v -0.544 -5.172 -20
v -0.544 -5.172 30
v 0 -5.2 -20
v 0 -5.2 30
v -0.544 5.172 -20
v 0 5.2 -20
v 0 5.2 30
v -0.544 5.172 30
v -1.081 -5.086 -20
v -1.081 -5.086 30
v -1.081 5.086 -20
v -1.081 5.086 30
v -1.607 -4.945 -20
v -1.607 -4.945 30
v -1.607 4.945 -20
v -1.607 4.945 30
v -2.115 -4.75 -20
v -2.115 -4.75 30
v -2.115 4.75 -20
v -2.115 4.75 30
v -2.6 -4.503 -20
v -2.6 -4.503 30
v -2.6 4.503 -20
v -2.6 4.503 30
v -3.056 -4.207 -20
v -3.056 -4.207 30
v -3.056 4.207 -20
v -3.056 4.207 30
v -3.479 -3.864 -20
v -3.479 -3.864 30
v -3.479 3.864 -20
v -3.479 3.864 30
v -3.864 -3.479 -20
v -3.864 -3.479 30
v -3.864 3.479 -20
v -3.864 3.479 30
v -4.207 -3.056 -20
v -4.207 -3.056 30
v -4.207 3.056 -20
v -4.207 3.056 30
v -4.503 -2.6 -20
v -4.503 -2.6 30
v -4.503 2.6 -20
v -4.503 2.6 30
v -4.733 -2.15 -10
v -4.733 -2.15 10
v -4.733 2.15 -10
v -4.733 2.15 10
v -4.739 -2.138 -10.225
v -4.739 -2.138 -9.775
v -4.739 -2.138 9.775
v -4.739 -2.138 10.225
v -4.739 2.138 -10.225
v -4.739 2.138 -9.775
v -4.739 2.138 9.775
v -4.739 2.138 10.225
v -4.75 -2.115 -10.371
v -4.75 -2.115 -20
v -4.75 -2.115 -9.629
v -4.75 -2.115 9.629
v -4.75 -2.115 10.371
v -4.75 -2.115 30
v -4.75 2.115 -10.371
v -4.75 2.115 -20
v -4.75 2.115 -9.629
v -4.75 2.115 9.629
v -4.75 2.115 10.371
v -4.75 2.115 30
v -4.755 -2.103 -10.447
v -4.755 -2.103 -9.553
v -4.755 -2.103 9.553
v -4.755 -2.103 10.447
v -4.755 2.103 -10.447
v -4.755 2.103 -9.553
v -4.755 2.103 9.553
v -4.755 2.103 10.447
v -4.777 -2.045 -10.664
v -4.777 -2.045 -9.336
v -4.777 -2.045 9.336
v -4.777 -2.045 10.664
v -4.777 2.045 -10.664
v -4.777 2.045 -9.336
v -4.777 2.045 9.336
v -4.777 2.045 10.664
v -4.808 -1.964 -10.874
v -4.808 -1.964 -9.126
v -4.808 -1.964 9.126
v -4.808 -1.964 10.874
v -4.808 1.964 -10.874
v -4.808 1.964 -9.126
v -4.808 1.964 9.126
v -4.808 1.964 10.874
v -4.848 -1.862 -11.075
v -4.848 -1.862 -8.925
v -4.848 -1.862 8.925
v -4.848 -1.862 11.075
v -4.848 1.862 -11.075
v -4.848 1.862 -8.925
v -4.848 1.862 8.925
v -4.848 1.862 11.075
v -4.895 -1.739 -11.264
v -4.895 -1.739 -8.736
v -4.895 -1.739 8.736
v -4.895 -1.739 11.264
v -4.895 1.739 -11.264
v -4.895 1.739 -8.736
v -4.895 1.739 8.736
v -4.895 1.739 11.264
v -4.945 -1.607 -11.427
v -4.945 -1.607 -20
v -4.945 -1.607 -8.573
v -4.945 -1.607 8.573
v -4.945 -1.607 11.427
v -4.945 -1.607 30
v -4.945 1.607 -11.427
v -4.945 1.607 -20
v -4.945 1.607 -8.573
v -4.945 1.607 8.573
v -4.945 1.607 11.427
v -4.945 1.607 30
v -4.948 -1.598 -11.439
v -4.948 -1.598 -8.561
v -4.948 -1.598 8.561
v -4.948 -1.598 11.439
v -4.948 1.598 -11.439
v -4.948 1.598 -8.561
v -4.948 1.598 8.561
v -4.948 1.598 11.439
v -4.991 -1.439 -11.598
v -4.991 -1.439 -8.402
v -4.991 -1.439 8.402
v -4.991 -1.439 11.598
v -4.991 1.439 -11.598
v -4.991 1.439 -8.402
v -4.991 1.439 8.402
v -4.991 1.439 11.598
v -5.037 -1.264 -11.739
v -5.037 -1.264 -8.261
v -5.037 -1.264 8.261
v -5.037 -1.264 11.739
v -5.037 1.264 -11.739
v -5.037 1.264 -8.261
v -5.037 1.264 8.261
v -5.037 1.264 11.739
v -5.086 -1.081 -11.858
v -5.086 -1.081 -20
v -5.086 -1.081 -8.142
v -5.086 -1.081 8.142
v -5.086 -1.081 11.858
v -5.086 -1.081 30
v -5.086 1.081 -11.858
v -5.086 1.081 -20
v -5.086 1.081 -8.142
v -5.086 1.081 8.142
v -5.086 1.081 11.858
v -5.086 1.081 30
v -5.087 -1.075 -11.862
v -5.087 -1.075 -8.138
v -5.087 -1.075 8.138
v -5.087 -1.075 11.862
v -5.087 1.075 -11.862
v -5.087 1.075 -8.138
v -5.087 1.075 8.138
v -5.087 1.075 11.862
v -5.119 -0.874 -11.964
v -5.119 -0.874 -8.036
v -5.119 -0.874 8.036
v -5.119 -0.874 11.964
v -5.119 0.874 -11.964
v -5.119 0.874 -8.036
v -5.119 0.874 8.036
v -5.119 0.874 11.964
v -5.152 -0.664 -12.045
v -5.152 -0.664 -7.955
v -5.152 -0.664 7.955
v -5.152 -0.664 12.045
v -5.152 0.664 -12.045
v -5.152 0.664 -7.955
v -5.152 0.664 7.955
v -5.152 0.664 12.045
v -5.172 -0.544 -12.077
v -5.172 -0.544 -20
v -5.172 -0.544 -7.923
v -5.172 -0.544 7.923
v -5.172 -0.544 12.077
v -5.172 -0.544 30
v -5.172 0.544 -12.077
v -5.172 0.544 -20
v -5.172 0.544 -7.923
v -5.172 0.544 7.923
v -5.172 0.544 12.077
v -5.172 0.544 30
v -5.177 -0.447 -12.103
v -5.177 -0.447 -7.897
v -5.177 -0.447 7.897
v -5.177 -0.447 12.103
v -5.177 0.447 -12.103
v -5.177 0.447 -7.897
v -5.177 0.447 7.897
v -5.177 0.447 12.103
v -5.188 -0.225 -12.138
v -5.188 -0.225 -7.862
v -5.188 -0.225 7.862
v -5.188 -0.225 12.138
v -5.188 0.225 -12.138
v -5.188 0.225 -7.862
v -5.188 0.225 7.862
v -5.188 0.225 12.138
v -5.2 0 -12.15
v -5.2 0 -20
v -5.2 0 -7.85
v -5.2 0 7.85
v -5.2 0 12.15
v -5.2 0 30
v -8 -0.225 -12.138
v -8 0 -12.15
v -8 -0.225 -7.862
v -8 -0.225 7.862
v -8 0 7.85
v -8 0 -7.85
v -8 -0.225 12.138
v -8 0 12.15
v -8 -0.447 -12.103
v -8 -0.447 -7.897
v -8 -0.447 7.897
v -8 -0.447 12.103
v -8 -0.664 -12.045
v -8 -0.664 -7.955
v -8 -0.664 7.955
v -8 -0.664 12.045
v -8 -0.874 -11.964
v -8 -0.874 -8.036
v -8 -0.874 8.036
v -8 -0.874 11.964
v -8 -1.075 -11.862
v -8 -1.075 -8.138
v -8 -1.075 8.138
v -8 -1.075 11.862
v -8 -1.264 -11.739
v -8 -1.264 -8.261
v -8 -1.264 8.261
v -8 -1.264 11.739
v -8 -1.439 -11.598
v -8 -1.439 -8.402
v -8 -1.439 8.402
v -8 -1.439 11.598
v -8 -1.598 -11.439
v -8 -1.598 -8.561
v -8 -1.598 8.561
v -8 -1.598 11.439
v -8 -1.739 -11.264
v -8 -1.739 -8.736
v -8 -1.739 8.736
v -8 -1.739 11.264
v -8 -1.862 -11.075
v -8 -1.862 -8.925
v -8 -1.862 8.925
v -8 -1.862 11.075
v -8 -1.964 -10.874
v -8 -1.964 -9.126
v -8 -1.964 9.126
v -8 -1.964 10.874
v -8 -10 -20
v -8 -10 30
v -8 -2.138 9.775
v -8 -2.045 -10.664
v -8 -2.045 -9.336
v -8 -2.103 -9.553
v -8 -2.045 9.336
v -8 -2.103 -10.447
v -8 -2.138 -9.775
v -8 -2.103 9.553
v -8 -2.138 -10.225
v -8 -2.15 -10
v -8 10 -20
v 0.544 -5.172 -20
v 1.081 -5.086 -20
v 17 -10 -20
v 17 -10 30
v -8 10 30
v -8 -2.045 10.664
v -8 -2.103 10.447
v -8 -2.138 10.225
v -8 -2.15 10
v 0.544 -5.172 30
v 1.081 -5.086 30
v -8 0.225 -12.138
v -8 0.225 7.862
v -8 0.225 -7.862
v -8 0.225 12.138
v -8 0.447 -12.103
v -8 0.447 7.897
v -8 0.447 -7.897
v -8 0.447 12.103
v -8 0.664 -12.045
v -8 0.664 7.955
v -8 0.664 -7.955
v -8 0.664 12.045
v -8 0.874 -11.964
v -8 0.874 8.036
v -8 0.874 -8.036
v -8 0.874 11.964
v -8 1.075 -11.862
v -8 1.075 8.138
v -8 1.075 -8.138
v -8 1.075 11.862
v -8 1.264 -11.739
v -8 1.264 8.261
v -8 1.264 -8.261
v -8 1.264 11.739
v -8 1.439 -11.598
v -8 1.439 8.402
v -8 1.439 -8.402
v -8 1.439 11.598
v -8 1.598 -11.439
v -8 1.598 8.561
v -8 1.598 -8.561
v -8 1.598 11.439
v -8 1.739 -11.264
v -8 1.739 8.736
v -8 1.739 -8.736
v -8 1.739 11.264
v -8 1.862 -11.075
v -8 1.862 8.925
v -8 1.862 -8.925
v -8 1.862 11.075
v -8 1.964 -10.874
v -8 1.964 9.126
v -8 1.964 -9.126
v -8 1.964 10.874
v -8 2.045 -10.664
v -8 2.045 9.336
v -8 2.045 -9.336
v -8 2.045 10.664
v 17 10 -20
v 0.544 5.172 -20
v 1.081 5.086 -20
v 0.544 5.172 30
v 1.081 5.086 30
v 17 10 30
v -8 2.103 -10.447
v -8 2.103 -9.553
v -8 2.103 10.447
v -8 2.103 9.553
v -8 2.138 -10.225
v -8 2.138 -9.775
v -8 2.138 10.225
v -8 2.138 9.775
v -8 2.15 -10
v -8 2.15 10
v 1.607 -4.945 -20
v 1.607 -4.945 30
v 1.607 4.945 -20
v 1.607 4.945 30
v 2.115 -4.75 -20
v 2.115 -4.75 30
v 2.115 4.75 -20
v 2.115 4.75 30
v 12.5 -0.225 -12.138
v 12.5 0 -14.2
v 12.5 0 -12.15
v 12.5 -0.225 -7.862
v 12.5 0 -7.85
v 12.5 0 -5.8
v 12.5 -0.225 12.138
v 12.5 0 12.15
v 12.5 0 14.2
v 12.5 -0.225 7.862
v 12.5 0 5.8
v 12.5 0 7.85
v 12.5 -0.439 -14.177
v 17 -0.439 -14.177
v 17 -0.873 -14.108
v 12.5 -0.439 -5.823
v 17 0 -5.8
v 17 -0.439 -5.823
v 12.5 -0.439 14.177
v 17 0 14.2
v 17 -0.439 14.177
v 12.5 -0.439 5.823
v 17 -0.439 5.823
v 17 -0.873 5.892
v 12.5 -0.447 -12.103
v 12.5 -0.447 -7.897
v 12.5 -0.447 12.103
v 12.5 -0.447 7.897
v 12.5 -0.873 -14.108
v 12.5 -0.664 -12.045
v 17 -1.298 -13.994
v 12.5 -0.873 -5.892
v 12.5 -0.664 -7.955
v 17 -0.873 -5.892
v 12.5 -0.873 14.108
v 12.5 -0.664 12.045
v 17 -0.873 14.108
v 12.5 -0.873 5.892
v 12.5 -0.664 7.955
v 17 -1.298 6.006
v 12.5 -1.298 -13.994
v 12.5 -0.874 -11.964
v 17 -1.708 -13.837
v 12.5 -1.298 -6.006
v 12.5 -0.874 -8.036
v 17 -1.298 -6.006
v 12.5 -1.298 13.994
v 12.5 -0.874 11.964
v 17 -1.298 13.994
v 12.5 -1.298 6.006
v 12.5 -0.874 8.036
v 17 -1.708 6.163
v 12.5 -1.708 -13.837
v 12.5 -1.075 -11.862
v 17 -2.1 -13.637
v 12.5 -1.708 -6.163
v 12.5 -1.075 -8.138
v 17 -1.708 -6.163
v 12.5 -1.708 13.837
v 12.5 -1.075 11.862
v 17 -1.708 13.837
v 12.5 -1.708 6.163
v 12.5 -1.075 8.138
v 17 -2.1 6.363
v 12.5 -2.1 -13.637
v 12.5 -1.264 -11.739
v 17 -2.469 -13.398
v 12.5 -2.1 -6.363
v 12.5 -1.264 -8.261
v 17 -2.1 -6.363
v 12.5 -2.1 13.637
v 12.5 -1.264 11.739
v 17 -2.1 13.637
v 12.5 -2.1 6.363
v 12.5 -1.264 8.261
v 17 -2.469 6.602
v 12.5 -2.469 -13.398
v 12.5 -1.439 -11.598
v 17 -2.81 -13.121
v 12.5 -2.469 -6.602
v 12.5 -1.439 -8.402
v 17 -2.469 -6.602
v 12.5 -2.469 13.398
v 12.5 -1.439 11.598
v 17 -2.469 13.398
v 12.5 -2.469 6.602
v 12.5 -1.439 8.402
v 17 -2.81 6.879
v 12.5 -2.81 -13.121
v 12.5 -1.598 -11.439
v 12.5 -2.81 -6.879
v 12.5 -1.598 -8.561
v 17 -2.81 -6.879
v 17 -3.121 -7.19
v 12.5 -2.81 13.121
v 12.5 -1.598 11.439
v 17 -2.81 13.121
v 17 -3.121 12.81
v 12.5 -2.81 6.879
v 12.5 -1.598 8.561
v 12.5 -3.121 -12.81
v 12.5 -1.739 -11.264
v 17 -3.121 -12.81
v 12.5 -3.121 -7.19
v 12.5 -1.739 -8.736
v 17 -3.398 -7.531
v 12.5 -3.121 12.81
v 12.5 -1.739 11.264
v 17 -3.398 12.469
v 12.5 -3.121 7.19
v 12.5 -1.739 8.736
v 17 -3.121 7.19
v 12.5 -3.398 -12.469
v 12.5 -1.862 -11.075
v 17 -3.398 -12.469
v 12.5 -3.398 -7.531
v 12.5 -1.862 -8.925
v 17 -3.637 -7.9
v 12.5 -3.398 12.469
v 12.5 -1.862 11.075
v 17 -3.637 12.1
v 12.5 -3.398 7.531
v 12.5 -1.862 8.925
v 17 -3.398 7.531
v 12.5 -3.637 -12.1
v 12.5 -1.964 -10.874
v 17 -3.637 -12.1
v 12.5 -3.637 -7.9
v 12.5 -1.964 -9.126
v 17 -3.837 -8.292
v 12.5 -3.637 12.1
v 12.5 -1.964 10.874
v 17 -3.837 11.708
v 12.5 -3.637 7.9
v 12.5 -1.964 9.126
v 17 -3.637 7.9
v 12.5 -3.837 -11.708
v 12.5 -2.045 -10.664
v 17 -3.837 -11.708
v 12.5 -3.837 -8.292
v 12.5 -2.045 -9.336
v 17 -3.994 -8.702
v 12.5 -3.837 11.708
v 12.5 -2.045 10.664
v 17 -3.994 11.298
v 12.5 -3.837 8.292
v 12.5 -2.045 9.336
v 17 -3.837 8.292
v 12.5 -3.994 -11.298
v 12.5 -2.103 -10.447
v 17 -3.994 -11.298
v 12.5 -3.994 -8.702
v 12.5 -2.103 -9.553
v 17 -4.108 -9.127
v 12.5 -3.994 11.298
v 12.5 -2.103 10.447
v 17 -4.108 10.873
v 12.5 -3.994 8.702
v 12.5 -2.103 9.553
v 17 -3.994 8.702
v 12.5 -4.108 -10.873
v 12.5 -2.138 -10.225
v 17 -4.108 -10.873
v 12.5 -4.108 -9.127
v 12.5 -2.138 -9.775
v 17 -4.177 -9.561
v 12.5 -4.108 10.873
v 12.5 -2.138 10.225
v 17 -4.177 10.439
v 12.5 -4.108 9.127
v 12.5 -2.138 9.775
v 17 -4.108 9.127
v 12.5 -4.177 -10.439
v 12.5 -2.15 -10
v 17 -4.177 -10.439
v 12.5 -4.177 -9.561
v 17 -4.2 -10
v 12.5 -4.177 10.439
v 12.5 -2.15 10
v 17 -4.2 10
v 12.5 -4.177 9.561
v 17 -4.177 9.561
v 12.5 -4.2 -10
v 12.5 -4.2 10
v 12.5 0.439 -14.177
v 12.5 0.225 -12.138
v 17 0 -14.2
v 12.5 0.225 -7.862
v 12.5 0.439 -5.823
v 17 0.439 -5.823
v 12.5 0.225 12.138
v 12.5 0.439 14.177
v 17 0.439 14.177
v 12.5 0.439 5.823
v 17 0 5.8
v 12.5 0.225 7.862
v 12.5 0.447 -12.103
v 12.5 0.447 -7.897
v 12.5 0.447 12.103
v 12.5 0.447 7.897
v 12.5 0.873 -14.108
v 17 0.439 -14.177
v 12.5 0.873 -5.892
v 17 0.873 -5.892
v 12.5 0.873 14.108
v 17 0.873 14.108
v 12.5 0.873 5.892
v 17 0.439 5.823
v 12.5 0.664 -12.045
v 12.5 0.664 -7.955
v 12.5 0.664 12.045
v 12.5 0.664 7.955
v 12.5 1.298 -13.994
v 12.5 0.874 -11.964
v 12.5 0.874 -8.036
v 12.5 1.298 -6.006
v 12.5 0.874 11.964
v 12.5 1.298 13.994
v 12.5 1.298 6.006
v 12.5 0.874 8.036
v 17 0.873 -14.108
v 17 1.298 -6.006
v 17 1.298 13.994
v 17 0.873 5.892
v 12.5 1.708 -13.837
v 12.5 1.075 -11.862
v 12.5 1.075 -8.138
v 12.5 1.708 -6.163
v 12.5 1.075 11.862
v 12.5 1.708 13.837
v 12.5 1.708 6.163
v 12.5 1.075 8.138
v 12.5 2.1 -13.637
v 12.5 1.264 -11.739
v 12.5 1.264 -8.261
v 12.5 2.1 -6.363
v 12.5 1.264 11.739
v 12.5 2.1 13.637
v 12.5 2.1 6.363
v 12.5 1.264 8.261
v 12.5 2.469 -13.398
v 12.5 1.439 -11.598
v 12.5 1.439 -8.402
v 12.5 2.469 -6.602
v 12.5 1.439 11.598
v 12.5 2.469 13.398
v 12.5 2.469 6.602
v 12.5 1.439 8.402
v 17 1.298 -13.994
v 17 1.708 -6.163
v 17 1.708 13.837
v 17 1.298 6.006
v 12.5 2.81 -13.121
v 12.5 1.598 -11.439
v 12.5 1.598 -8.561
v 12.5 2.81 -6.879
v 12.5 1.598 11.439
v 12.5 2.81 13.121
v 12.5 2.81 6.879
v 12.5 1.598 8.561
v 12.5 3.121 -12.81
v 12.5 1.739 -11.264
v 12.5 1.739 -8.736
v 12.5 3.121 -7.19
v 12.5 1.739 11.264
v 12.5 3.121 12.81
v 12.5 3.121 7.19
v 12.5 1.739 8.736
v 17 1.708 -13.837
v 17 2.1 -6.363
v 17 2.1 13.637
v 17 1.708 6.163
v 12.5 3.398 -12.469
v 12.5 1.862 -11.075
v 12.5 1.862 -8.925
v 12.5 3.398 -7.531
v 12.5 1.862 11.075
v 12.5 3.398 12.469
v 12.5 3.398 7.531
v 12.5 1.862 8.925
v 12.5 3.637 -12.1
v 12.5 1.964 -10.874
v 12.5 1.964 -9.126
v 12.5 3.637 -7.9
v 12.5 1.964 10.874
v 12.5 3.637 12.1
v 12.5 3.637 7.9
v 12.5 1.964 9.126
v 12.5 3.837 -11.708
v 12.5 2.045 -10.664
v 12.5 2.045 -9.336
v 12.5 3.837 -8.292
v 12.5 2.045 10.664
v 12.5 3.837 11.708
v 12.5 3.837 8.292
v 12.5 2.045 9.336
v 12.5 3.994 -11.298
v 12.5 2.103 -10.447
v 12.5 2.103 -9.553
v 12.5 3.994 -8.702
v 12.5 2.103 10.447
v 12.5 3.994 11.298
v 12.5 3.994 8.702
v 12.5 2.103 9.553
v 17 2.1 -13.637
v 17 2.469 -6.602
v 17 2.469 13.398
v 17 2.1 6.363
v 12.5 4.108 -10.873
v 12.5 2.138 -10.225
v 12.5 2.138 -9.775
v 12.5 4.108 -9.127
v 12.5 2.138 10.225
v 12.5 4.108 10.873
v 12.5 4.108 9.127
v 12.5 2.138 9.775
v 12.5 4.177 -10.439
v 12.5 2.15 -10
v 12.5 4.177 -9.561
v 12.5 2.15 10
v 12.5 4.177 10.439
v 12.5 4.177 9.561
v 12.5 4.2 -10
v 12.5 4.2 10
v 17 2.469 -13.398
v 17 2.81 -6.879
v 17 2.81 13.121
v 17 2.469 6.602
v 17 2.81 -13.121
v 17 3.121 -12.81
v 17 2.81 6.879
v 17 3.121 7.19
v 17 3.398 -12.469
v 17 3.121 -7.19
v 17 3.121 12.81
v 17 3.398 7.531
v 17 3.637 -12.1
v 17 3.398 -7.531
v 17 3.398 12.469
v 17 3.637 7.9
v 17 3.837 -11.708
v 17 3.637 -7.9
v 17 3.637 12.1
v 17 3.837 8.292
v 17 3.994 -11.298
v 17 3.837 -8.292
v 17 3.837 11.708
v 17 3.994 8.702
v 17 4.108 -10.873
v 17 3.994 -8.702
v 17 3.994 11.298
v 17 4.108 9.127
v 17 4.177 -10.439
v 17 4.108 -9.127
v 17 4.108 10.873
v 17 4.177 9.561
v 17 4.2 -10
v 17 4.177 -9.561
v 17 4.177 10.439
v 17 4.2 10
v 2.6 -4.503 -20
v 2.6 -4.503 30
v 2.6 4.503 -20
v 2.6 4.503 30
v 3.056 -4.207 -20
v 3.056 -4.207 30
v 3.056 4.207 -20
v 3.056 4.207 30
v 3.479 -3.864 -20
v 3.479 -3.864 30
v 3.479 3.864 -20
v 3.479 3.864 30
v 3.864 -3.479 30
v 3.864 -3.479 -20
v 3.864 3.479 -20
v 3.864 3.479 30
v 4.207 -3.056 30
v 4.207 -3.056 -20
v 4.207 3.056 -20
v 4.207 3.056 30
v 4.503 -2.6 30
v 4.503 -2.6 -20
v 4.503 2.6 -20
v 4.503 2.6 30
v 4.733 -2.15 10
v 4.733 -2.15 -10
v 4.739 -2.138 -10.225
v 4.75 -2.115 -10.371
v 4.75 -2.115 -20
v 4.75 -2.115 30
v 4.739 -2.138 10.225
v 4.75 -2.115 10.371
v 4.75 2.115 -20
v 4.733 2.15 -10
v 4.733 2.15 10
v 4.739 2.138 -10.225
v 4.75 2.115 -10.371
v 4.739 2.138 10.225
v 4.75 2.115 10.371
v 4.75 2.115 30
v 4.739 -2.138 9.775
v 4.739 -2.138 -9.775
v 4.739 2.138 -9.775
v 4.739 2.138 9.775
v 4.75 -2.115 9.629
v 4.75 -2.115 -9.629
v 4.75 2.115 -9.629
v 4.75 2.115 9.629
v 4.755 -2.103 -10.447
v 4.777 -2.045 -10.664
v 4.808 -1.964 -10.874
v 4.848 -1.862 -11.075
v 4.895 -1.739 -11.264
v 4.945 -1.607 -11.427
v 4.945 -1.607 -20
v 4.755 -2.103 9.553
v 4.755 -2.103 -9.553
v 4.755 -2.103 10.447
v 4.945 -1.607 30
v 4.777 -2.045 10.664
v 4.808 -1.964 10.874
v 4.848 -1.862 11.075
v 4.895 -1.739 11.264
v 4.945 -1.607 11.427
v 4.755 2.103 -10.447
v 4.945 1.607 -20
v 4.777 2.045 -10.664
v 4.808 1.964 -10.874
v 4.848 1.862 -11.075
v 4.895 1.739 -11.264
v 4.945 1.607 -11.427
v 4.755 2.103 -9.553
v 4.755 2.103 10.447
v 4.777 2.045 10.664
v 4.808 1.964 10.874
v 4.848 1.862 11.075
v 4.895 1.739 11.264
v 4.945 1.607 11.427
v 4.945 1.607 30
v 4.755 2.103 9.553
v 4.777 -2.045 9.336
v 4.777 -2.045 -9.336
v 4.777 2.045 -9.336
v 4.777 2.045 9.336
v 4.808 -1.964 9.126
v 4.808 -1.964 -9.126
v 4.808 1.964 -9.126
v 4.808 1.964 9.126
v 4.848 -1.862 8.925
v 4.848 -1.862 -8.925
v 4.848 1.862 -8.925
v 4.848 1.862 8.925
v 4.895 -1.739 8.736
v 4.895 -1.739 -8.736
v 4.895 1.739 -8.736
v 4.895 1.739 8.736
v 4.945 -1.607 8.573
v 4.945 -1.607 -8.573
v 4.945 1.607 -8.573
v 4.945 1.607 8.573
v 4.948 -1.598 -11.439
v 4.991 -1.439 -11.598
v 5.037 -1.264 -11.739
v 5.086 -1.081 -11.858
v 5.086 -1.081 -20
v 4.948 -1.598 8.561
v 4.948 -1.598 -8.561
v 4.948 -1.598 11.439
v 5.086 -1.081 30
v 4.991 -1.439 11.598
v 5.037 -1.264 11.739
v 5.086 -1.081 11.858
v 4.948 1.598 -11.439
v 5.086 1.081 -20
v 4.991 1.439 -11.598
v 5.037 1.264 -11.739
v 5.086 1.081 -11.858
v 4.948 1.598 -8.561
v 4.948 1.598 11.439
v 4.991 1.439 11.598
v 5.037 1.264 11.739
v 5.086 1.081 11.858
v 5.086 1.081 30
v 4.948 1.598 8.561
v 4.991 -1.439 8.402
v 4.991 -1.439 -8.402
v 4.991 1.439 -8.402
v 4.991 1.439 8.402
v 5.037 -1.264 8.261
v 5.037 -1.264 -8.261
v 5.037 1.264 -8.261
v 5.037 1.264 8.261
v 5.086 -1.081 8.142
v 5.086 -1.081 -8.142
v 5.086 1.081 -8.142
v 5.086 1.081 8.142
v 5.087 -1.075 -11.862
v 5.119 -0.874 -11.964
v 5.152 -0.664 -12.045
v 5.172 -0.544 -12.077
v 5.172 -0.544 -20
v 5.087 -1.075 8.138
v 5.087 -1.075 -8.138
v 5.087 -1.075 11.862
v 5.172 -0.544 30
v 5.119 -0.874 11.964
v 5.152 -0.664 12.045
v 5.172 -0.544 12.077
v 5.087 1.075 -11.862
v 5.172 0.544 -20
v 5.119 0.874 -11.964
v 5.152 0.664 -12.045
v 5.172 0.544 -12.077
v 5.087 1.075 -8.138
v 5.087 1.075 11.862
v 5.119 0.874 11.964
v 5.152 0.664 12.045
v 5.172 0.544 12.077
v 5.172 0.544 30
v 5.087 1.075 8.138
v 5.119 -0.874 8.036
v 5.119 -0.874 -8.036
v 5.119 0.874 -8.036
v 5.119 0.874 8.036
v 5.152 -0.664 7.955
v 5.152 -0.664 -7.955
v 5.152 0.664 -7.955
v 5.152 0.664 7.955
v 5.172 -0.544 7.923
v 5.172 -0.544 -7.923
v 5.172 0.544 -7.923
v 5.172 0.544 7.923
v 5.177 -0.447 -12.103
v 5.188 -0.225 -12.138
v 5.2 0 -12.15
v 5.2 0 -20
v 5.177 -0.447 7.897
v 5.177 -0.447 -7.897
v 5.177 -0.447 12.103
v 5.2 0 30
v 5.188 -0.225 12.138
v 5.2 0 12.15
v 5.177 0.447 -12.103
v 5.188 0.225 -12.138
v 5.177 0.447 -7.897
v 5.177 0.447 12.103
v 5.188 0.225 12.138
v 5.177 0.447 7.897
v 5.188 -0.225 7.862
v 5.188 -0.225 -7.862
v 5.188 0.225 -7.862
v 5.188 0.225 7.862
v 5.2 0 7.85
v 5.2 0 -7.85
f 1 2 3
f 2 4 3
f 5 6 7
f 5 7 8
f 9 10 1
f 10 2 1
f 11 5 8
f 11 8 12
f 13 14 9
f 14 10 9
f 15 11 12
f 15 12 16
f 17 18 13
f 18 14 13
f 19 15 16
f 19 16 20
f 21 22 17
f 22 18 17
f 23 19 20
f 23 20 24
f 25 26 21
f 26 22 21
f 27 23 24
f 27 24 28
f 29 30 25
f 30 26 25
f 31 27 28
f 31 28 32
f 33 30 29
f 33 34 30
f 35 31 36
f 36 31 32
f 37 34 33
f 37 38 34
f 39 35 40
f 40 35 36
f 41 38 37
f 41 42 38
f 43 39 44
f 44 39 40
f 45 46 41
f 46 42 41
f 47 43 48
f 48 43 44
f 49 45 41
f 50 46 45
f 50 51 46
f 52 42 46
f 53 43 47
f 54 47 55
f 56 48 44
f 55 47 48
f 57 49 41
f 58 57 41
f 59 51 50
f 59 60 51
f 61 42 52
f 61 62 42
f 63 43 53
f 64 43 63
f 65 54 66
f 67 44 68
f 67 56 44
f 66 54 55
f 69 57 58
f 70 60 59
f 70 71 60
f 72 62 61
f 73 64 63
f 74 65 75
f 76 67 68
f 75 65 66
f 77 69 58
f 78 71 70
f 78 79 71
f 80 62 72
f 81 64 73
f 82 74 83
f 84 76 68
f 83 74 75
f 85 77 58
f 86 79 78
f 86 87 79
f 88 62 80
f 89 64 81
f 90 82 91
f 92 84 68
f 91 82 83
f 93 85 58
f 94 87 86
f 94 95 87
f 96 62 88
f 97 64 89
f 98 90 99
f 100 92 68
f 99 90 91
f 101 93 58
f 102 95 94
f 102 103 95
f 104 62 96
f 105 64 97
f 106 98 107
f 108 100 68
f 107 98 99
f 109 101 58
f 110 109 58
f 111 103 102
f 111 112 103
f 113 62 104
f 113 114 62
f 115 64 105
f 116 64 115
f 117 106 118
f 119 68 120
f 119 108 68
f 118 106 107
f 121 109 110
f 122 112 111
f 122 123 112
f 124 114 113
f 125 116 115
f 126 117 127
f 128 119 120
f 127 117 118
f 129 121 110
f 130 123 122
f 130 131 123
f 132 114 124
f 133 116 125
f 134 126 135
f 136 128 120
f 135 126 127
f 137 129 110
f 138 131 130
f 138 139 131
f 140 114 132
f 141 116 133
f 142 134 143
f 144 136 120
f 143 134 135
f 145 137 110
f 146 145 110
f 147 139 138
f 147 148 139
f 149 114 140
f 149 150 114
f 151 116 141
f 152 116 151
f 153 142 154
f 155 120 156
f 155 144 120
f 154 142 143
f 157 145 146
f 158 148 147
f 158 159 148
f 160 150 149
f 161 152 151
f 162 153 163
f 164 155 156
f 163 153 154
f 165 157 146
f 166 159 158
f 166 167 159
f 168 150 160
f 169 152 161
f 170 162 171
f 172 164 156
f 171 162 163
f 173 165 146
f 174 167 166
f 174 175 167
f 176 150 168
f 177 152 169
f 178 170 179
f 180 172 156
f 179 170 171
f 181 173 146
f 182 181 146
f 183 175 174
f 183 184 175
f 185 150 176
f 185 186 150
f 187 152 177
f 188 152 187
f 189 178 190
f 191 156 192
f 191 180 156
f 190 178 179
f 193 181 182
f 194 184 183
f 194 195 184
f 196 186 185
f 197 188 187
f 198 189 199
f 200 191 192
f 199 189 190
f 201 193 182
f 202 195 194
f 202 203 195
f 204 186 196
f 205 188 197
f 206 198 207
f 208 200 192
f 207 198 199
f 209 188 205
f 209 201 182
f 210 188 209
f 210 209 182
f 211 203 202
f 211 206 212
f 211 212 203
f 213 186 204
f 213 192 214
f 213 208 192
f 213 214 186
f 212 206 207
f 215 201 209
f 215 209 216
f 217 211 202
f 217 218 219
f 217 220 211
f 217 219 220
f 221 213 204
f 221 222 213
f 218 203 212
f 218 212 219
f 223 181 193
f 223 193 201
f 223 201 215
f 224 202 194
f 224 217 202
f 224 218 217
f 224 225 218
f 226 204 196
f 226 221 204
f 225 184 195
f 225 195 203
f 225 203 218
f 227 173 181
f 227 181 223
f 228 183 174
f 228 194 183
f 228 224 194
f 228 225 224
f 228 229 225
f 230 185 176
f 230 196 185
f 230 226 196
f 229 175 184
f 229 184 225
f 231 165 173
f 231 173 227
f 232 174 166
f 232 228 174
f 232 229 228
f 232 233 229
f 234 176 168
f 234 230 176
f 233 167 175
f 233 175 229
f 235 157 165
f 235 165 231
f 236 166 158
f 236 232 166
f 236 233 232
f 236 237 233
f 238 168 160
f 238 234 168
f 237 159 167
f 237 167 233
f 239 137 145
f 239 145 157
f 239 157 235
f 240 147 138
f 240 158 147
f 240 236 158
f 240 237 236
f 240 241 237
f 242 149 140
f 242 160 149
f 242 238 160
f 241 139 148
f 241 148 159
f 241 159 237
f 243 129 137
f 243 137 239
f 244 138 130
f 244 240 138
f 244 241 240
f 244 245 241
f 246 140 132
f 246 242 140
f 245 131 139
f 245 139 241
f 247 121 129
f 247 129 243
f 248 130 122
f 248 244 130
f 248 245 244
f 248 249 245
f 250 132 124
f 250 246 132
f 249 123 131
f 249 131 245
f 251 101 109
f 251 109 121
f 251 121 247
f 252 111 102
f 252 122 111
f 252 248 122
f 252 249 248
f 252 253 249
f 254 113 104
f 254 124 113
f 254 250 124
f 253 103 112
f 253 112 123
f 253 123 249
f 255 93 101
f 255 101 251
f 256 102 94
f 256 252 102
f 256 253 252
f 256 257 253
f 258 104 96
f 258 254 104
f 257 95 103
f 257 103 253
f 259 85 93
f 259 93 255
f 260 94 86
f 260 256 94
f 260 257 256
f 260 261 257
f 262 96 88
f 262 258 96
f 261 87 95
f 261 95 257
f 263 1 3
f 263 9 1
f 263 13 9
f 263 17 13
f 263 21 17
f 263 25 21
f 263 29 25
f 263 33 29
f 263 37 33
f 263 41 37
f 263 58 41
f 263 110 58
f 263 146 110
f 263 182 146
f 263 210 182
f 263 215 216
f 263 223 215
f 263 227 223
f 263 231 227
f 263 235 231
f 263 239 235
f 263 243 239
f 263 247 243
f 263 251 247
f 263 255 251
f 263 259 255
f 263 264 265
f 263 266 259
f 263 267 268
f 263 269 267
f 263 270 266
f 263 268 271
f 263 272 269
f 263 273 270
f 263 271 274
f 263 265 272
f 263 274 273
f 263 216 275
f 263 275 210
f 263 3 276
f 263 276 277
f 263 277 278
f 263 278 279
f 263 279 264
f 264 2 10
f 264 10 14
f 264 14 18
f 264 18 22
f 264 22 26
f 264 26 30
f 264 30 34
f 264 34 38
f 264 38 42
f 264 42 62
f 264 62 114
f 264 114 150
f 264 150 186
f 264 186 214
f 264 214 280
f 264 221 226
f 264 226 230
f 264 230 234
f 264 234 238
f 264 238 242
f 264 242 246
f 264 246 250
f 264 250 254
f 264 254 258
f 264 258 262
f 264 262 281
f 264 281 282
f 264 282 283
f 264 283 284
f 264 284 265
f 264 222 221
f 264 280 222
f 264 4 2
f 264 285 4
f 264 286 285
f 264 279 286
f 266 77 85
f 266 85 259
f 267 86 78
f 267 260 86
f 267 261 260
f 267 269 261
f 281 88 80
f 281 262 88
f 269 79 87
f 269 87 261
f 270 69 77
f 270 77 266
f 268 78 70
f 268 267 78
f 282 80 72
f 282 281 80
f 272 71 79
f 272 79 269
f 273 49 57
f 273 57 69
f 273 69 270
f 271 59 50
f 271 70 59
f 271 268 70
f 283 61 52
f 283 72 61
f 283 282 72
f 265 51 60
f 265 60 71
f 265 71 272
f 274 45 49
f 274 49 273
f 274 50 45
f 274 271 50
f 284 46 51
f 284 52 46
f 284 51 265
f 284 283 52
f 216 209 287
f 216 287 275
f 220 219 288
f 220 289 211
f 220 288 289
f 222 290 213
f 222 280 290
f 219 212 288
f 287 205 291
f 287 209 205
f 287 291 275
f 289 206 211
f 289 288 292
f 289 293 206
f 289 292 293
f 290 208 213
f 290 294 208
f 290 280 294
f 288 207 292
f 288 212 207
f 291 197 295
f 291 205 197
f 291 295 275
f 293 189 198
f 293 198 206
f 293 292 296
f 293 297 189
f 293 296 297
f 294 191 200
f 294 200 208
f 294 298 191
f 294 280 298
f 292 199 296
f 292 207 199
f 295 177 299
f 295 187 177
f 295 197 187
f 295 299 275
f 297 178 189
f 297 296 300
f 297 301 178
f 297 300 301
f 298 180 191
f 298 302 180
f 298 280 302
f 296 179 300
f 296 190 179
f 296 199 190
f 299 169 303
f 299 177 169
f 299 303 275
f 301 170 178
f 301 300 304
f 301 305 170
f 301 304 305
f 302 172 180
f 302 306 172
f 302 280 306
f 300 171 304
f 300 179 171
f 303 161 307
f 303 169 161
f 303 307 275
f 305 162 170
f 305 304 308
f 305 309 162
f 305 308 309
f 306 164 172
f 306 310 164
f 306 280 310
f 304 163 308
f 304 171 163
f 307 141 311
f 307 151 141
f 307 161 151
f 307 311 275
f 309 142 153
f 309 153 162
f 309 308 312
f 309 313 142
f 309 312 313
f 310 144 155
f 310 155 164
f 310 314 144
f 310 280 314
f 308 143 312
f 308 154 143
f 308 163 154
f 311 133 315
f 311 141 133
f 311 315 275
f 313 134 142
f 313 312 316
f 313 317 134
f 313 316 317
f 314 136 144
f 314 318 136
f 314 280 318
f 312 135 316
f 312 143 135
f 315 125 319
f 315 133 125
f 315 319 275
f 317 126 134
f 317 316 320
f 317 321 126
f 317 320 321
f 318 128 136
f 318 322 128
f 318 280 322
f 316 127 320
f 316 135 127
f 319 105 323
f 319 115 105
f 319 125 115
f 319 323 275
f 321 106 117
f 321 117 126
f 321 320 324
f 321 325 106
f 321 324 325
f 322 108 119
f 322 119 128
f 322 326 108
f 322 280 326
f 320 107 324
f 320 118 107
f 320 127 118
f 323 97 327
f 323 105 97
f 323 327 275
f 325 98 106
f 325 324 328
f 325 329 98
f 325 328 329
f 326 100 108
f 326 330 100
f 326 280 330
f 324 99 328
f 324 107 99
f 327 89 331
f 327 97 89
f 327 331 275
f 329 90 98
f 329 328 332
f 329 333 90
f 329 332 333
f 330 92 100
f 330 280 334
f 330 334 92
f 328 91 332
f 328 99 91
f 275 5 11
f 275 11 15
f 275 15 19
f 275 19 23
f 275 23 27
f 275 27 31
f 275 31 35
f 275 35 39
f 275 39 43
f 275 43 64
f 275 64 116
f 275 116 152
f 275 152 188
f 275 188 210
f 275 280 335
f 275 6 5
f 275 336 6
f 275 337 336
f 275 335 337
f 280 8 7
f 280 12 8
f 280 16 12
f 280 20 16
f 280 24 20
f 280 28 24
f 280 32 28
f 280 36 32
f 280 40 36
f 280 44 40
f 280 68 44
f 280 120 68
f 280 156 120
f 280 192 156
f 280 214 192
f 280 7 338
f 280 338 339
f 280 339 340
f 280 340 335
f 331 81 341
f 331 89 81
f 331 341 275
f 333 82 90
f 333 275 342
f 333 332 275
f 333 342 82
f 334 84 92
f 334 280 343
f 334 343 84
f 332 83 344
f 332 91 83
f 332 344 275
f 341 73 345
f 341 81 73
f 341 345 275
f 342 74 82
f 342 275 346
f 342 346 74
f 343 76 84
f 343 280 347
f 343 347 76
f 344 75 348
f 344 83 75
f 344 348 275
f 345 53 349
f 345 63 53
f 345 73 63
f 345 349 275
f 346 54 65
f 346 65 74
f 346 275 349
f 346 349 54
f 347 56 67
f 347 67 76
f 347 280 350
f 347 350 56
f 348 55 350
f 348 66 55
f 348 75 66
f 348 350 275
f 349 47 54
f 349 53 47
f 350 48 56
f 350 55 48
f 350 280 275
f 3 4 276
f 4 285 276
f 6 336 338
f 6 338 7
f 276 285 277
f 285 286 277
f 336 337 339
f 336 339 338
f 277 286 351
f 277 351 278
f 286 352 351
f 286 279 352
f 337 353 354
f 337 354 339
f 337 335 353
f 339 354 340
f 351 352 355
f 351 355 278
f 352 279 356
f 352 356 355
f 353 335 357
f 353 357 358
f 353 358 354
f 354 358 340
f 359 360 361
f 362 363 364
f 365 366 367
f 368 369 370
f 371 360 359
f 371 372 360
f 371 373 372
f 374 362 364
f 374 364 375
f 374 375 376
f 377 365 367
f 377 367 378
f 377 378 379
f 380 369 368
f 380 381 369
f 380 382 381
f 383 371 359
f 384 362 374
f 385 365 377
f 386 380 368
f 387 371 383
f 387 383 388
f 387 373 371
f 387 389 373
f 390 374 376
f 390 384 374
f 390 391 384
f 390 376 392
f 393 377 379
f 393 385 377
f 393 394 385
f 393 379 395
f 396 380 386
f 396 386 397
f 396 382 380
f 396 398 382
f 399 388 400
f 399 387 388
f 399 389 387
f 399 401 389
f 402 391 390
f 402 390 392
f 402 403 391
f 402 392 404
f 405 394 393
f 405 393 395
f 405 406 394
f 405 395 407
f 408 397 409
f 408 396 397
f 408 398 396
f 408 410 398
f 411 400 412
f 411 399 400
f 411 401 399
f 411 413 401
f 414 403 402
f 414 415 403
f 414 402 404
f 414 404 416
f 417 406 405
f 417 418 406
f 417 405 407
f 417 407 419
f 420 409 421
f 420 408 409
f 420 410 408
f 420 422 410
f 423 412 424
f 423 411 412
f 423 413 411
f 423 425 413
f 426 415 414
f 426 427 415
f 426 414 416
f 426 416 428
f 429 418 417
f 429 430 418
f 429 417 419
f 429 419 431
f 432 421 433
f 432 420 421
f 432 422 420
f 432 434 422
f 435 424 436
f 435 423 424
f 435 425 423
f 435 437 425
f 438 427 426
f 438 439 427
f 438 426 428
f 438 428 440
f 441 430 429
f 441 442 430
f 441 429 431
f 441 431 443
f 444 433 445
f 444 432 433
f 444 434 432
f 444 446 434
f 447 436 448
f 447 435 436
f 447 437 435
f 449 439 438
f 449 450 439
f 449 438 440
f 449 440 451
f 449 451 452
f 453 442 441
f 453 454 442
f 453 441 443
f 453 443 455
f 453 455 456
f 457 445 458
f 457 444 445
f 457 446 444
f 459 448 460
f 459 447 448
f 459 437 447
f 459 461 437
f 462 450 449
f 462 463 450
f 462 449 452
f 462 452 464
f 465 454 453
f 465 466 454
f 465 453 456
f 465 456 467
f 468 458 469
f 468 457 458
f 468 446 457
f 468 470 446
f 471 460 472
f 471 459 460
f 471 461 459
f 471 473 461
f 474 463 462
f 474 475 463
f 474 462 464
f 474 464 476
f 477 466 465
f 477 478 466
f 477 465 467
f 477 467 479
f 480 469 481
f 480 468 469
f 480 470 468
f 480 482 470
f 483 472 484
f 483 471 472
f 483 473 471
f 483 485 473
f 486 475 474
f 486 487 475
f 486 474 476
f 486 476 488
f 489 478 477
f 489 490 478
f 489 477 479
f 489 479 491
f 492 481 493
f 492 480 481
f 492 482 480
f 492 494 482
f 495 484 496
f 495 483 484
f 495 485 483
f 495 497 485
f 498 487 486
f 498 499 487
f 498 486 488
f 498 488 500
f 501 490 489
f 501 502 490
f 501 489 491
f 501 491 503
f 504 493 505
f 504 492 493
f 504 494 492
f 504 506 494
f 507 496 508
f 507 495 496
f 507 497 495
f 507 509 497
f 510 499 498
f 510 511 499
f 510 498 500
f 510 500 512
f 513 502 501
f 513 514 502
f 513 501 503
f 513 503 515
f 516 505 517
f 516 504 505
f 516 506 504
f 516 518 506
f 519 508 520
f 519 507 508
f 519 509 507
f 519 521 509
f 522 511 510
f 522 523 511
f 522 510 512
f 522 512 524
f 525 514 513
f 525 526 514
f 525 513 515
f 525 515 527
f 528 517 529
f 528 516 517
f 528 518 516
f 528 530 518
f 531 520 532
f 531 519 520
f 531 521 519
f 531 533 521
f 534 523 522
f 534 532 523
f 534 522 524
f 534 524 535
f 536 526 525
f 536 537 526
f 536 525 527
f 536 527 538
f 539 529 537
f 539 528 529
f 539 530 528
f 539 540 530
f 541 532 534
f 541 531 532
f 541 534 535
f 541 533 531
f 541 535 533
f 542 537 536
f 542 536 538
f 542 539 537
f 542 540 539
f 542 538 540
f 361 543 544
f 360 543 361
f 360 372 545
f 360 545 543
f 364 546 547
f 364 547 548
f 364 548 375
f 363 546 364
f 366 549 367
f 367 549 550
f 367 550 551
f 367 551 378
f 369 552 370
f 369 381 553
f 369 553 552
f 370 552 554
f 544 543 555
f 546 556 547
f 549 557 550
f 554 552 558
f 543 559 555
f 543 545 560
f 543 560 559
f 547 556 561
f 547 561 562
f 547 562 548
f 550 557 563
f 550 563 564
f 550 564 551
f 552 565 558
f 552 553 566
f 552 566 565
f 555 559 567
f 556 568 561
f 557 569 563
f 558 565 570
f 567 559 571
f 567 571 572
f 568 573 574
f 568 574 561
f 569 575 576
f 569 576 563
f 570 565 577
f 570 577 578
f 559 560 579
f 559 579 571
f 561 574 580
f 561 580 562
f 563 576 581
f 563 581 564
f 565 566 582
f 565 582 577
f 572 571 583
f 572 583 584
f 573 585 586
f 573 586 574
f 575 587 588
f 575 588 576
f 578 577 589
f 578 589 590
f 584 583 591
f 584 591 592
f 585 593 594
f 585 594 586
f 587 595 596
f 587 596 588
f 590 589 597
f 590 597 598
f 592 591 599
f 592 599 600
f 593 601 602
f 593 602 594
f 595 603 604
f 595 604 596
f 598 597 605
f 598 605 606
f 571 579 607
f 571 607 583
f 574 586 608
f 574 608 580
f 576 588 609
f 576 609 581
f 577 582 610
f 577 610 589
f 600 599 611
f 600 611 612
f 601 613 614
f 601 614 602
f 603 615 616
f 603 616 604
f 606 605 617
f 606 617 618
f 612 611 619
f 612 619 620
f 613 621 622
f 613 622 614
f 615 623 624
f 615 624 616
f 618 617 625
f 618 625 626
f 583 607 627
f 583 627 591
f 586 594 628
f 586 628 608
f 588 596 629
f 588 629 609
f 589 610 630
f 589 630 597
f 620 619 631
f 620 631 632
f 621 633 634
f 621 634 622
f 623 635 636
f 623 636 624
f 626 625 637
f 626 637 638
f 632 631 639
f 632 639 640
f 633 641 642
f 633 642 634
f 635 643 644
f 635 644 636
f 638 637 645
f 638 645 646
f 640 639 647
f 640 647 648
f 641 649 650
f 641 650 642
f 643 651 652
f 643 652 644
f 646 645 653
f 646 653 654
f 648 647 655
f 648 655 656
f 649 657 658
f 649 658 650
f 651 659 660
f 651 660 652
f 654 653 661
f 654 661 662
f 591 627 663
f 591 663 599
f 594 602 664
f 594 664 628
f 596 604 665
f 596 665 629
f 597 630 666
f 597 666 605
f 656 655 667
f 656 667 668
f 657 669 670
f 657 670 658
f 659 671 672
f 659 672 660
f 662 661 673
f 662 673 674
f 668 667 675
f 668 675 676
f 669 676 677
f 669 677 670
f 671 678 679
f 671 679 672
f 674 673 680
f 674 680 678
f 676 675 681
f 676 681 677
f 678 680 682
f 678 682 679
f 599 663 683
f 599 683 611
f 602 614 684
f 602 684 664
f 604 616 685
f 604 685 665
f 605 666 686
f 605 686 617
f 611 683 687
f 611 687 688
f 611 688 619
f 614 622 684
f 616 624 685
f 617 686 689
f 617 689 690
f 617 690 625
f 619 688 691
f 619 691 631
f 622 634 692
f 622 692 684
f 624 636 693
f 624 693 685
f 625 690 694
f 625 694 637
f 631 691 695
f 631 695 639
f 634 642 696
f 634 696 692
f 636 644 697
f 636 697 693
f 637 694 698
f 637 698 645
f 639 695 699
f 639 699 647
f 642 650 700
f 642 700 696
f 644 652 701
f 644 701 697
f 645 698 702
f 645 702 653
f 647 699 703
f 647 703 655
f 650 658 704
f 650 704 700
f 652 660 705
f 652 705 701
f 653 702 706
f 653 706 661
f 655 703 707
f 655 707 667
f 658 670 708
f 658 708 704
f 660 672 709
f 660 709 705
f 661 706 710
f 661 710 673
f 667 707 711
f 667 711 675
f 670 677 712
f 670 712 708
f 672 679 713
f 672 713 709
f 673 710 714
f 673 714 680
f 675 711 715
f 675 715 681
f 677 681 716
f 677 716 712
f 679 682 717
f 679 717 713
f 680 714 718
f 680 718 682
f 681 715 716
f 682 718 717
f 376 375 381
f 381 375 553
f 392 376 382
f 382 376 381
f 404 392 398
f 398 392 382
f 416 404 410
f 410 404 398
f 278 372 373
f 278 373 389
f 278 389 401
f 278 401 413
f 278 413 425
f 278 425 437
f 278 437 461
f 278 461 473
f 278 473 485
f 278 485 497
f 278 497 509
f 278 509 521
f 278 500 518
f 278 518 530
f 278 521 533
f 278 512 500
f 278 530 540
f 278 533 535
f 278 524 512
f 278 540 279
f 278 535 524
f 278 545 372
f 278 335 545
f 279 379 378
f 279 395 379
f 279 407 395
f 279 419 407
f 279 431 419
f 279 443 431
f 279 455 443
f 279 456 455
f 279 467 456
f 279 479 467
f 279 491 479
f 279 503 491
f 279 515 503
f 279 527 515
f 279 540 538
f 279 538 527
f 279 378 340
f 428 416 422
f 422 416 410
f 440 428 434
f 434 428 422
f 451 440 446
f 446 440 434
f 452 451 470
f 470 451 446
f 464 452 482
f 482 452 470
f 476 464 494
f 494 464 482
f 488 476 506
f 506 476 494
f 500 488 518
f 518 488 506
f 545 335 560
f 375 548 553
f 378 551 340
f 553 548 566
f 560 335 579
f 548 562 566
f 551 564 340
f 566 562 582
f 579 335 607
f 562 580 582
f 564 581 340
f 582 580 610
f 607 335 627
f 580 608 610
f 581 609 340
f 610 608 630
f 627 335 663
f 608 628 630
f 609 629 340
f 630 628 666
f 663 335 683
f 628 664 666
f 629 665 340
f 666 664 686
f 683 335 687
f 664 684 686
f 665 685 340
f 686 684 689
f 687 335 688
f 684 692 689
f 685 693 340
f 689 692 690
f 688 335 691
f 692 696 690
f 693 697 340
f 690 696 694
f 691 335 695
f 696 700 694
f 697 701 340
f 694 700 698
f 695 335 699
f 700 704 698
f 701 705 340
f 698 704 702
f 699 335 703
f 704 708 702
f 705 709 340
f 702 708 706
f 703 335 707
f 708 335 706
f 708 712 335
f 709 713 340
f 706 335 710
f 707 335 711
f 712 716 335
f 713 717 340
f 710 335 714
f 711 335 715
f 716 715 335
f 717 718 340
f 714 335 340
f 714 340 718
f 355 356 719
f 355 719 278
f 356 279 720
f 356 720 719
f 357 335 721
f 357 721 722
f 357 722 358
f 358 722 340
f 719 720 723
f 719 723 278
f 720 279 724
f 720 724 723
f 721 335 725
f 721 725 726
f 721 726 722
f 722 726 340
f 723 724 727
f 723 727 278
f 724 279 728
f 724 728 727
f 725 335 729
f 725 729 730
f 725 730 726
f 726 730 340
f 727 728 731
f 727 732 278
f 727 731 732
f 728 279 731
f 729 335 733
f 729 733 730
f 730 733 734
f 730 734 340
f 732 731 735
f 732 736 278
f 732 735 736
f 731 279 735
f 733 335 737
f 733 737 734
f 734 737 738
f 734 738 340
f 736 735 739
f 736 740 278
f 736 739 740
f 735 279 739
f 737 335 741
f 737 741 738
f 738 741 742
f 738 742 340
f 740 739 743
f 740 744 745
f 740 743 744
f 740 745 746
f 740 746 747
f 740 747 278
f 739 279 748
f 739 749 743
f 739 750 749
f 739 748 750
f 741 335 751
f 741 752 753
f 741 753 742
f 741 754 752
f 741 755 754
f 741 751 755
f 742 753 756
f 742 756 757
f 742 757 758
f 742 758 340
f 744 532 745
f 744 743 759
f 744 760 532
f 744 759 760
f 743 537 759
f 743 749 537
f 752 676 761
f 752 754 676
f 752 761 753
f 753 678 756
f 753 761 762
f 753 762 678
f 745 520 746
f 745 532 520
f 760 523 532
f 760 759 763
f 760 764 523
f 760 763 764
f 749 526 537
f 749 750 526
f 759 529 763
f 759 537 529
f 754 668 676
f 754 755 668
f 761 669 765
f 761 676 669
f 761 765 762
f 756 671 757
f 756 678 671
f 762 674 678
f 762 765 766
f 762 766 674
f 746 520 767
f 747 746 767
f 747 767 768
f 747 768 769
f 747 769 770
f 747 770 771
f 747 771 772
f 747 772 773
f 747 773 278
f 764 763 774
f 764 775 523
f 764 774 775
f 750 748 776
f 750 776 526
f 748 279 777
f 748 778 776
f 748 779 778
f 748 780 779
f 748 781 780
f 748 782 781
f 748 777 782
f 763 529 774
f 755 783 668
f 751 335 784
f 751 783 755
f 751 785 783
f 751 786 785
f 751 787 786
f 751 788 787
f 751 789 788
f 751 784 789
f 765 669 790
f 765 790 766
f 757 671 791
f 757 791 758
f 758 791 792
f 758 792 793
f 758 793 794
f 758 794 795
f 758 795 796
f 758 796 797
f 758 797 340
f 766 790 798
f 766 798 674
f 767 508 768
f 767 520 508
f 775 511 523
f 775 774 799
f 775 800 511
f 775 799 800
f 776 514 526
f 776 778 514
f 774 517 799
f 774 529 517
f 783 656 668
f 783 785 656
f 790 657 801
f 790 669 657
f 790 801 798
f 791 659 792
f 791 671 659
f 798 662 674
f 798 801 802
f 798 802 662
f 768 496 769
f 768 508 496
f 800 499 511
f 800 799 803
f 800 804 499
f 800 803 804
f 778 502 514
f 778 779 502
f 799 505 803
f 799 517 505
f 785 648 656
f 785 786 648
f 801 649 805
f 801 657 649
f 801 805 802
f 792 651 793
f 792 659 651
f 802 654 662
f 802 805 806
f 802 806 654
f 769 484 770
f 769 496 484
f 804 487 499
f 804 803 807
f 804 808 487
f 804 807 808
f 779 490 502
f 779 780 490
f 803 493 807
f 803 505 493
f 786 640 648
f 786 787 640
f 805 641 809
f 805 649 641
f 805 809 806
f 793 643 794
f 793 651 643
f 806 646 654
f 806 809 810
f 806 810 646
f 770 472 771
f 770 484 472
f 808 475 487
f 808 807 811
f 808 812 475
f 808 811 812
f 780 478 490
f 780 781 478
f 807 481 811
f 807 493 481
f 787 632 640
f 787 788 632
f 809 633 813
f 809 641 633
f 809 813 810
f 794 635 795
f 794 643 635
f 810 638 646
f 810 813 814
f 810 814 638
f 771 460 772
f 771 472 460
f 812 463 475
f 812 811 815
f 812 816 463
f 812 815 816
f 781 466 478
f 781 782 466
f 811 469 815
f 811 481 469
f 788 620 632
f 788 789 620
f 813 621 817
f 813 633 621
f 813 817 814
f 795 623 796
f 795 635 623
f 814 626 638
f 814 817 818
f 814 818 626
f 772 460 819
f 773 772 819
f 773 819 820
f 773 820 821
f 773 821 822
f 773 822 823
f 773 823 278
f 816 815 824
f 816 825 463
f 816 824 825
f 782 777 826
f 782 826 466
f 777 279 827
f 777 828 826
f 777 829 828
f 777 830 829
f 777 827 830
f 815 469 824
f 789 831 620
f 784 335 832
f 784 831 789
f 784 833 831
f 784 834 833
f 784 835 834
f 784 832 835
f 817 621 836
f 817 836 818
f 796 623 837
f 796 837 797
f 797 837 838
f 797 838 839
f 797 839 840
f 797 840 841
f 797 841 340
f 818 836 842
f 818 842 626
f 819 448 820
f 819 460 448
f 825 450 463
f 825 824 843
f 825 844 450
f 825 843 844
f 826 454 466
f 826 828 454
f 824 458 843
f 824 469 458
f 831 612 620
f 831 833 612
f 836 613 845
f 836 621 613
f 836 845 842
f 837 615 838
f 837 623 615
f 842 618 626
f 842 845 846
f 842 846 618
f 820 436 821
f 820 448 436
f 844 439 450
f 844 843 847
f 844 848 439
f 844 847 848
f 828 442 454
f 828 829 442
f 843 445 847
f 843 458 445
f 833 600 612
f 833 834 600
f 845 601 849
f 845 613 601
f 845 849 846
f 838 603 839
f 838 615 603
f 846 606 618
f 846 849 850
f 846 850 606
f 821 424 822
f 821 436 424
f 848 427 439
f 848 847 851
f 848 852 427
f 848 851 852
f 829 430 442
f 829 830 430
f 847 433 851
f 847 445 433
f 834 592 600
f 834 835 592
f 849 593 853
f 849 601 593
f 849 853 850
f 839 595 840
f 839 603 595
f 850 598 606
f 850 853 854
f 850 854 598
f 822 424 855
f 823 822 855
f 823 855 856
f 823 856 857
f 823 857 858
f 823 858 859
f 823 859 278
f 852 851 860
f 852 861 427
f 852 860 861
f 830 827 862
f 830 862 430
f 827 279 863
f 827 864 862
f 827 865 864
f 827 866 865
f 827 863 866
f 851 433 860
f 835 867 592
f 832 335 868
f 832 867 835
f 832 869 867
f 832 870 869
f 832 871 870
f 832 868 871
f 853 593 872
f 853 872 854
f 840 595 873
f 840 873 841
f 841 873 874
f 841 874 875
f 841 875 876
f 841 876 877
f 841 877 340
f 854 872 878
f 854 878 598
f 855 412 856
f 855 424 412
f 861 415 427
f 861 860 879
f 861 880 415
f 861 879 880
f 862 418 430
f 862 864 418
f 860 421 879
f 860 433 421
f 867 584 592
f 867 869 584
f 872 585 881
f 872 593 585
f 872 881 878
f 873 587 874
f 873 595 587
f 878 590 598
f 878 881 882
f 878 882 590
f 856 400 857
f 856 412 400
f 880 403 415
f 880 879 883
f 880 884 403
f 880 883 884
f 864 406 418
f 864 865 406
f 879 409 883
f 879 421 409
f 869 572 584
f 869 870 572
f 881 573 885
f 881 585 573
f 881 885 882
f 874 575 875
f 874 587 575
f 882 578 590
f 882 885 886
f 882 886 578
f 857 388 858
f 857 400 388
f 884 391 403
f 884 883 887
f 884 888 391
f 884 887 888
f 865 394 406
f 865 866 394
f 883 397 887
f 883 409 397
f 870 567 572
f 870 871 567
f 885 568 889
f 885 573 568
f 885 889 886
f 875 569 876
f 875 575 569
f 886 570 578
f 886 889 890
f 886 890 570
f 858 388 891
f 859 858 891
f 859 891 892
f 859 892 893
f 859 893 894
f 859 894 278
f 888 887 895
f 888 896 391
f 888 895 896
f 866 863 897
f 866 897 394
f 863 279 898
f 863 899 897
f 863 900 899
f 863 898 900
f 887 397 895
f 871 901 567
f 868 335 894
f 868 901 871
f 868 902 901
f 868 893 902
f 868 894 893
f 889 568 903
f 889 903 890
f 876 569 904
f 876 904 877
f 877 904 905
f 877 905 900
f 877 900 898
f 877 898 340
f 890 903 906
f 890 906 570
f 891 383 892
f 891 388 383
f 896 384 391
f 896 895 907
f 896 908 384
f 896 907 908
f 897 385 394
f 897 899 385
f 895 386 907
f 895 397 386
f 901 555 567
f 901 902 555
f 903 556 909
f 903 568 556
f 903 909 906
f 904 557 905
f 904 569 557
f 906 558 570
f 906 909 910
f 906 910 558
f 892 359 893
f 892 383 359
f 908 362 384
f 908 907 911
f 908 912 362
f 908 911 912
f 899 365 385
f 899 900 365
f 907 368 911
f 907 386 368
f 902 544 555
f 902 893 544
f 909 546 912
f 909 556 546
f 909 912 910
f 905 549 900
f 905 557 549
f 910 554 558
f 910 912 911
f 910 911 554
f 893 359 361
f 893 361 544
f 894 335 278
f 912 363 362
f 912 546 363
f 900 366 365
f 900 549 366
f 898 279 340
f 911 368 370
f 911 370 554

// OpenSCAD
include <../parameters.scad>

pipe_holder_distance = 20;


module 888_2023(){
    difference(){
        translate([-(8), -10, -20])
            cube([25, 20, 50]);

        cylinder(d = tube_for_undercarriage_outer_diameter, h = 80, center = true, $fn = 60);

        for (i=[-1,1]) {
            translate([0, 0, i*pipe_holder_distance/2])
                rotate([0, 90, 0]){
                    cylinder(d = M4_screw_diameter, h = 100, center = true, $fn = 60);
                    translate([0, 0, 17-M4_screw_head_height]) cylinder(d = M4_nut_diameter, h = 100, $fn = 60);
            }
        }
    }
}

888_2023();
